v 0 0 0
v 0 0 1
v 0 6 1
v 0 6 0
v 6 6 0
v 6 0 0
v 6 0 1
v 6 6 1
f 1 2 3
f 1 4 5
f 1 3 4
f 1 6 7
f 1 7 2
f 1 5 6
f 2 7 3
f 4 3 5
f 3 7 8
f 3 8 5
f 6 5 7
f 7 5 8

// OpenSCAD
/* Warning, this is a very basic generator with a lot of approximation 
input data : [VQFN, LNX, 6x6x1.0mm, 36, , C, C04-00501C]
generated by com.zoubworld.electronics.cad.model3d.Basic
Date : Sun Feb 15 10:50:48 CET 2026
*/

//body
color("black")
translate([0,0,0])
cube([6.0,6.0,1.0], center=false);
